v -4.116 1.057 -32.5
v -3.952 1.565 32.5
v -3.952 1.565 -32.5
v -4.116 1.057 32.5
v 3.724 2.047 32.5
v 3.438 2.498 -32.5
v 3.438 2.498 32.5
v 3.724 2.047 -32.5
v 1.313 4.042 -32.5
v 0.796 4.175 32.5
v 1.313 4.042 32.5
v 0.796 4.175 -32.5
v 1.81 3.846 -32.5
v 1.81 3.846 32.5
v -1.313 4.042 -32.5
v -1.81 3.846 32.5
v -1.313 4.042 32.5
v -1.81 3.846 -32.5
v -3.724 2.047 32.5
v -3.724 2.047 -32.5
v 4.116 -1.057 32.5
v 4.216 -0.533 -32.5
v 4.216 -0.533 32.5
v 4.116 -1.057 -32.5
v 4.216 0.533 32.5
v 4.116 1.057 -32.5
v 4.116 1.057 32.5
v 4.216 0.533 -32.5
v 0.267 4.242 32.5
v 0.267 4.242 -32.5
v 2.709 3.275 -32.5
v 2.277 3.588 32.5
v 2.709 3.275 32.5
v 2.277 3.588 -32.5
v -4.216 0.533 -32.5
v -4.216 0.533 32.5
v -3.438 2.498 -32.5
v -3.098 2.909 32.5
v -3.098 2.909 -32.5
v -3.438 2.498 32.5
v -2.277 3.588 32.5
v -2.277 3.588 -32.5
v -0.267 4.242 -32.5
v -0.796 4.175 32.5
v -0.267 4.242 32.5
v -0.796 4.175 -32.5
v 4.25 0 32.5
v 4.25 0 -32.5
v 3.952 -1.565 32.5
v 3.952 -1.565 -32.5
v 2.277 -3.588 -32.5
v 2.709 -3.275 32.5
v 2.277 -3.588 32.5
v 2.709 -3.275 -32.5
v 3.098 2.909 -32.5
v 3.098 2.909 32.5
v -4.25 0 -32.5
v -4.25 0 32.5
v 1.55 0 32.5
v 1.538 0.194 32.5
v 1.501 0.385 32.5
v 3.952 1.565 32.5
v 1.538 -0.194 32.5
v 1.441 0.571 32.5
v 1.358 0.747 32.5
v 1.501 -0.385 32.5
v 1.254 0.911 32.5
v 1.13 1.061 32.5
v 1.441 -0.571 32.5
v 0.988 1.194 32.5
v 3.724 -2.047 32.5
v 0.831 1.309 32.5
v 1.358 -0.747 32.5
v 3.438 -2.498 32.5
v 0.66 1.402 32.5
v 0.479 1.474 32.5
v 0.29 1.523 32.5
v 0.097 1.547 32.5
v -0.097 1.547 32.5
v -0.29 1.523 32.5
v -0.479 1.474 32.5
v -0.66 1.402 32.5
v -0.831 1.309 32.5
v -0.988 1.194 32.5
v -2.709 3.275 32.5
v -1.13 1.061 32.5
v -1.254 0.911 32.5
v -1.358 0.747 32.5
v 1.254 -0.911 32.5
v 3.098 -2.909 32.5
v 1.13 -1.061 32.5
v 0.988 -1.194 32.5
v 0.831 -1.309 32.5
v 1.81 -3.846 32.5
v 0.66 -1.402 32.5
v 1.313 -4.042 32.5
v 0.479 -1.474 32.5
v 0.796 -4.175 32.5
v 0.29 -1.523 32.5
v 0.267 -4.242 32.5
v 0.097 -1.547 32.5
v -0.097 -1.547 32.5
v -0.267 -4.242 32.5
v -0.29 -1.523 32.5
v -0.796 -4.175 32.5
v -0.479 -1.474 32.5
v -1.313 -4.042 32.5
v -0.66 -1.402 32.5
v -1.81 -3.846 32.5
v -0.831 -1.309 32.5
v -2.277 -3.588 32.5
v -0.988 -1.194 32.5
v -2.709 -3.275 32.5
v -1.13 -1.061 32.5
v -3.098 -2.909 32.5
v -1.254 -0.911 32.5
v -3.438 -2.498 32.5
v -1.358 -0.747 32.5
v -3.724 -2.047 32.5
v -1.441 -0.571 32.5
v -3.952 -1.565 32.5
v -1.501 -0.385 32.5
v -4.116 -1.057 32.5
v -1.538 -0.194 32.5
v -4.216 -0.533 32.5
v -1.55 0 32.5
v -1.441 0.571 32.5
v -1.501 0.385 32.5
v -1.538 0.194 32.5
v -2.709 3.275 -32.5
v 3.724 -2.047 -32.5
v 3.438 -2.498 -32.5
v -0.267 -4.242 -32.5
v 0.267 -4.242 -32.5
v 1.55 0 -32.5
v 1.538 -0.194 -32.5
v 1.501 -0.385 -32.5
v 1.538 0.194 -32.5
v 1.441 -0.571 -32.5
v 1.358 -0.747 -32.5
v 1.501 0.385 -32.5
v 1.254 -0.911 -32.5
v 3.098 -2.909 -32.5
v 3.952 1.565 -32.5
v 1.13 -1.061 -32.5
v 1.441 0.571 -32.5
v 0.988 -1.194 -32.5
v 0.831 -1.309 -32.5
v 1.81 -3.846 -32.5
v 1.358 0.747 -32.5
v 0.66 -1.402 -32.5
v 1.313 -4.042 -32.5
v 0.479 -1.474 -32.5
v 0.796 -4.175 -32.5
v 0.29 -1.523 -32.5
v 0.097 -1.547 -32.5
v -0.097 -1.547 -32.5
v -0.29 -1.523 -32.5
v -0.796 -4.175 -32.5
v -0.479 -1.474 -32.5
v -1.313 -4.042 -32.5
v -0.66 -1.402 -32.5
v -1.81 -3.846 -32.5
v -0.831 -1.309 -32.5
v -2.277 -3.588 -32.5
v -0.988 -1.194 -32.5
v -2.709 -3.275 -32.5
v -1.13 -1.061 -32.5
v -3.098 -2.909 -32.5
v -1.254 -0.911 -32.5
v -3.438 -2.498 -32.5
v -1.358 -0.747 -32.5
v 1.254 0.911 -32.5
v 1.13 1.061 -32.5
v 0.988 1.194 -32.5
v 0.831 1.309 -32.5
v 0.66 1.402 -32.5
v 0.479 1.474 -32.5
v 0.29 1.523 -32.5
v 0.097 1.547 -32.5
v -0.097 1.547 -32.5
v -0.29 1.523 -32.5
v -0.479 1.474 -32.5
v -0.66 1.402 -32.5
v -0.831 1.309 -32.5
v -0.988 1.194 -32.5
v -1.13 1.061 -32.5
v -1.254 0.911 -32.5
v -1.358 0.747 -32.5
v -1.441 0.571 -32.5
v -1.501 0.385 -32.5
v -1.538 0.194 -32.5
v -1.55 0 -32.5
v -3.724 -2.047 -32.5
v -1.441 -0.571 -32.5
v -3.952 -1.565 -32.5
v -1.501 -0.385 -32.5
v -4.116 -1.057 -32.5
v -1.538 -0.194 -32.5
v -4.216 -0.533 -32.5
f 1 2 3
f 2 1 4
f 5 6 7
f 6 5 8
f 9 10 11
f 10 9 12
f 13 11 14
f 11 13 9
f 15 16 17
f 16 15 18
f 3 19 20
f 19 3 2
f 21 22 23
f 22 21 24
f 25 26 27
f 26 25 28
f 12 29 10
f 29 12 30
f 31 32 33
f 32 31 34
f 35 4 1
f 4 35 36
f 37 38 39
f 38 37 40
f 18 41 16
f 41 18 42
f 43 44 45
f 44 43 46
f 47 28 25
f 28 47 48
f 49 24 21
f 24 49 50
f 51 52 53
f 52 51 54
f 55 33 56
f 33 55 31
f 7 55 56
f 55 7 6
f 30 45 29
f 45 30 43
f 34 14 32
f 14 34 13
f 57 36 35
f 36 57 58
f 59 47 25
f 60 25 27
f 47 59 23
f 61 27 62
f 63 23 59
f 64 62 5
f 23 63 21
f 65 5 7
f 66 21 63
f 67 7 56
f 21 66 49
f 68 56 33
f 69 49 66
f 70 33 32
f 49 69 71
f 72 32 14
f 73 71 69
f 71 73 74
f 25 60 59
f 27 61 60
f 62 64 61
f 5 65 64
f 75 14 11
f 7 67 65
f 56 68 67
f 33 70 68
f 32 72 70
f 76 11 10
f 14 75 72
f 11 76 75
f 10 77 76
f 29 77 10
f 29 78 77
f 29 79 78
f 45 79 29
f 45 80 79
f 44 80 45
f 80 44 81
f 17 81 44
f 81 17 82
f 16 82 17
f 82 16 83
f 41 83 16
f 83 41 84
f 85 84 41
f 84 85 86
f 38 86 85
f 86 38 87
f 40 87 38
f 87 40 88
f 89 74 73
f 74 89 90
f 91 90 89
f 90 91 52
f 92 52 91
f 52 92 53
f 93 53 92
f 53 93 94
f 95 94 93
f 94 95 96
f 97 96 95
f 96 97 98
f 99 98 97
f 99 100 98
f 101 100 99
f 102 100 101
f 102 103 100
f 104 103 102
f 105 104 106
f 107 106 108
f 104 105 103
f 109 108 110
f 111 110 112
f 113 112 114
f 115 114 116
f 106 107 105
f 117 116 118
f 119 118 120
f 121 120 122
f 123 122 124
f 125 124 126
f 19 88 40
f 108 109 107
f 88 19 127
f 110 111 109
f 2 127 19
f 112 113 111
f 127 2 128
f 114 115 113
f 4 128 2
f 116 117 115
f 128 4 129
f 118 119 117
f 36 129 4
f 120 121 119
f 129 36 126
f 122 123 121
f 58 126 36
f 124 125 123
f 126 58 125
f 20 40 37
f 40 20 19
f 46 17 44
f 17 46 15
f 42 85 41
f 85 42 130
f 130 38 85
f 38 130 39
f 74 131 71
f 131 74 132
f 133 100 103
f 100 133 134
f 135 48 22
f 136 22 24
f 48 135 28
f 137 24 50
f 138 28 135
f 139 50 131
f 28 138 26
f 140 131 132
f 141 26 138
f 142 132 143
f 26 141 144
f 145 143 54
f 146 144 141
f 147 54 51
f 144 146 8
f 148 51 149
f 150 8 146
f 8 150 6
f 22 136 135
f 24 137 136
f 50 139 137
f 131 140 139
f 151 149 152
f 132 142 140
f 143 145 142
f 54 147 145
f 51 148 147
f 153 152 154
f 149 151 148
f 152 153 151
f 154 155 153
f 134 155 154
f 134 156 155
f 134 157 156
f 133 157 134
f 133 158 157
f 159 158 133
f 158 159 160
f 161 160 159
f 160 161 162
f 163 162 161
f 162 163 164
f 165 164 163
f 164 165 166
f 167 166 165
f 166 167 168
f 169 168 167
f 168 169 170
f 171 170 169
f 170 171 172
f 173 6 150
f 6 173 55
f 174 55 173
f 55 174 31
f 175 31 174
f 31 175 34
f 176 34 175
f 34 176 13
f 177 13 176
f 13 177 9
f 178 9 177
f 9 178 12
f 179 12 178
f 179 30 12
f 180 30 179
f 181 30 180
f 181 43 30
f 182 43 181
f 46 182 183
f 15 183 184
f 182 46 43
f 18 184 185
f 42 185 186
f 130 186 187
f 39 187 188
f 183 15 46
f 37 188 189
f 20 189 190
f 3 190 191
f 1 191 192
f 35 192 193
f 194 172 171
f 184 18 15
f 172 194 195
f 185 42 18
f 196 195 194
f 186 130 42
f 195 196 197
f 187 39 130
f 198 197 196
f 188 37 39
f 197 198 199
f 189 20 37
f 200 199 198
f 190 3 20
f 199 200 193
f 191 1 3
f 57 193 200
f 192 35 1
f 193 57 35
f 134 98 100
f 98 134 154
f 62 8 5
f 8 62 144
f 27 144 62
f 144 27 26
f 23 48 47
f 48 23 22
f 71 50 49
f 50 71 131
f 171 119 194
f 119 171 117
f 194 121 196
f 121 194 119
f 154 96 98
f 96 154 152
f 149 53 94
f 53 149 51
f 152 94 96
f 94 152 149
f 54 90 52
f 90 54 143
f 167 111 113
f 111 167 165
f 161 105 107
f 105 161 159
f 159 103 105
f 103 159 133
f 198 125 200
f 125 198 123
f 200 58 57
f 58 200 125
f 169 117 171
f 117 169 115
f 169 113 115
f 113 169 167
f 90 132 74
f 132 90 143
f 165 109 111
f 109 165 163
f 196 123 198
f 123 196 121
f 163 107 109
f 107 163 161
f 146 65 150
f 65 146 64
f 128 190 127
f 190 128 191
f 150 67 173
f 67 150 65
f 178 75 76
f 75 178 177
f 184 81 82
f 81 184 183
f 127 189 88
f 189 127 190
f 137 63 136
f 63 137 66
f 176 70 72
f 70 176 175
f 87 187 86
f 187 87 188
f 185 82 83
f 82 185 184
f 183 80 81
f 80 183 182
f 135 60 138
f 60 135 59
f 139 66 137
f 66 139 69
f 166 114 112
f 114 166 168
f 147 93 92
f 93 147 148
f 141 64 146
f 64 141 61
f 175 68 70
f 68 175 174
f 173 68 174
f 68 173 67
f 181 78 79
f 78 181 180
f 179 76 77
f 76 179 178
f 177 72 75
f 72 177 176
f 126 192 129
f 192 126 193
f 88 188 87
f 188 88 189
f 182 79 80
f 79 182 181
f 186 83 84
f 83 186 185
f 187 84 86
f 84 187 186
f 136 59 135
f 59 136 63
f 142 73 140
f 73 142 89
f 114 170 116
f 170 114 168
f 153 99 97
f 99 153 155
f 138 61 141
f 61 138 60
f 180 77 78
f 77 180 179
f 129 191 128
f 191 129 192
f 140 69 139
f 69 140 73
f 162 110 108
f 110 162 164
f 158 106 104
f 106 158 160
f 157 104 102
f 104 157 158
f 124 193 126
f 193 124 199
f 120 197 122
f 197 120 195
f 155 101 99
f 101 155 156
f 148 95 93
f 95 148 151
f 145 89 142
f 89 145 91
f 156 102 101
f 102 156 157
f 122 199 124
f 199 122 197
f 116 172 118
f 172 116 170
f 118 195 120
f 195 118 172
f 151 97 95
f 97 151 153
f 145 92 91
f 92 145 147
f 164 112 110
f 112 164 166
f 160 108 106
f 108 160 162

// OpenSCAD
$fn = 50;


difference() {
	union() {
		translate(v = [0, 0, -32.5000000000]) {
			cylinder(h = 65, r = 4.2500000000);
		}
	}
	union() {
		translate(v = [0, 0, -100.0000000000]) {
			cylinder(h = 200, r = 1.5500000000);
		}
	}
}
